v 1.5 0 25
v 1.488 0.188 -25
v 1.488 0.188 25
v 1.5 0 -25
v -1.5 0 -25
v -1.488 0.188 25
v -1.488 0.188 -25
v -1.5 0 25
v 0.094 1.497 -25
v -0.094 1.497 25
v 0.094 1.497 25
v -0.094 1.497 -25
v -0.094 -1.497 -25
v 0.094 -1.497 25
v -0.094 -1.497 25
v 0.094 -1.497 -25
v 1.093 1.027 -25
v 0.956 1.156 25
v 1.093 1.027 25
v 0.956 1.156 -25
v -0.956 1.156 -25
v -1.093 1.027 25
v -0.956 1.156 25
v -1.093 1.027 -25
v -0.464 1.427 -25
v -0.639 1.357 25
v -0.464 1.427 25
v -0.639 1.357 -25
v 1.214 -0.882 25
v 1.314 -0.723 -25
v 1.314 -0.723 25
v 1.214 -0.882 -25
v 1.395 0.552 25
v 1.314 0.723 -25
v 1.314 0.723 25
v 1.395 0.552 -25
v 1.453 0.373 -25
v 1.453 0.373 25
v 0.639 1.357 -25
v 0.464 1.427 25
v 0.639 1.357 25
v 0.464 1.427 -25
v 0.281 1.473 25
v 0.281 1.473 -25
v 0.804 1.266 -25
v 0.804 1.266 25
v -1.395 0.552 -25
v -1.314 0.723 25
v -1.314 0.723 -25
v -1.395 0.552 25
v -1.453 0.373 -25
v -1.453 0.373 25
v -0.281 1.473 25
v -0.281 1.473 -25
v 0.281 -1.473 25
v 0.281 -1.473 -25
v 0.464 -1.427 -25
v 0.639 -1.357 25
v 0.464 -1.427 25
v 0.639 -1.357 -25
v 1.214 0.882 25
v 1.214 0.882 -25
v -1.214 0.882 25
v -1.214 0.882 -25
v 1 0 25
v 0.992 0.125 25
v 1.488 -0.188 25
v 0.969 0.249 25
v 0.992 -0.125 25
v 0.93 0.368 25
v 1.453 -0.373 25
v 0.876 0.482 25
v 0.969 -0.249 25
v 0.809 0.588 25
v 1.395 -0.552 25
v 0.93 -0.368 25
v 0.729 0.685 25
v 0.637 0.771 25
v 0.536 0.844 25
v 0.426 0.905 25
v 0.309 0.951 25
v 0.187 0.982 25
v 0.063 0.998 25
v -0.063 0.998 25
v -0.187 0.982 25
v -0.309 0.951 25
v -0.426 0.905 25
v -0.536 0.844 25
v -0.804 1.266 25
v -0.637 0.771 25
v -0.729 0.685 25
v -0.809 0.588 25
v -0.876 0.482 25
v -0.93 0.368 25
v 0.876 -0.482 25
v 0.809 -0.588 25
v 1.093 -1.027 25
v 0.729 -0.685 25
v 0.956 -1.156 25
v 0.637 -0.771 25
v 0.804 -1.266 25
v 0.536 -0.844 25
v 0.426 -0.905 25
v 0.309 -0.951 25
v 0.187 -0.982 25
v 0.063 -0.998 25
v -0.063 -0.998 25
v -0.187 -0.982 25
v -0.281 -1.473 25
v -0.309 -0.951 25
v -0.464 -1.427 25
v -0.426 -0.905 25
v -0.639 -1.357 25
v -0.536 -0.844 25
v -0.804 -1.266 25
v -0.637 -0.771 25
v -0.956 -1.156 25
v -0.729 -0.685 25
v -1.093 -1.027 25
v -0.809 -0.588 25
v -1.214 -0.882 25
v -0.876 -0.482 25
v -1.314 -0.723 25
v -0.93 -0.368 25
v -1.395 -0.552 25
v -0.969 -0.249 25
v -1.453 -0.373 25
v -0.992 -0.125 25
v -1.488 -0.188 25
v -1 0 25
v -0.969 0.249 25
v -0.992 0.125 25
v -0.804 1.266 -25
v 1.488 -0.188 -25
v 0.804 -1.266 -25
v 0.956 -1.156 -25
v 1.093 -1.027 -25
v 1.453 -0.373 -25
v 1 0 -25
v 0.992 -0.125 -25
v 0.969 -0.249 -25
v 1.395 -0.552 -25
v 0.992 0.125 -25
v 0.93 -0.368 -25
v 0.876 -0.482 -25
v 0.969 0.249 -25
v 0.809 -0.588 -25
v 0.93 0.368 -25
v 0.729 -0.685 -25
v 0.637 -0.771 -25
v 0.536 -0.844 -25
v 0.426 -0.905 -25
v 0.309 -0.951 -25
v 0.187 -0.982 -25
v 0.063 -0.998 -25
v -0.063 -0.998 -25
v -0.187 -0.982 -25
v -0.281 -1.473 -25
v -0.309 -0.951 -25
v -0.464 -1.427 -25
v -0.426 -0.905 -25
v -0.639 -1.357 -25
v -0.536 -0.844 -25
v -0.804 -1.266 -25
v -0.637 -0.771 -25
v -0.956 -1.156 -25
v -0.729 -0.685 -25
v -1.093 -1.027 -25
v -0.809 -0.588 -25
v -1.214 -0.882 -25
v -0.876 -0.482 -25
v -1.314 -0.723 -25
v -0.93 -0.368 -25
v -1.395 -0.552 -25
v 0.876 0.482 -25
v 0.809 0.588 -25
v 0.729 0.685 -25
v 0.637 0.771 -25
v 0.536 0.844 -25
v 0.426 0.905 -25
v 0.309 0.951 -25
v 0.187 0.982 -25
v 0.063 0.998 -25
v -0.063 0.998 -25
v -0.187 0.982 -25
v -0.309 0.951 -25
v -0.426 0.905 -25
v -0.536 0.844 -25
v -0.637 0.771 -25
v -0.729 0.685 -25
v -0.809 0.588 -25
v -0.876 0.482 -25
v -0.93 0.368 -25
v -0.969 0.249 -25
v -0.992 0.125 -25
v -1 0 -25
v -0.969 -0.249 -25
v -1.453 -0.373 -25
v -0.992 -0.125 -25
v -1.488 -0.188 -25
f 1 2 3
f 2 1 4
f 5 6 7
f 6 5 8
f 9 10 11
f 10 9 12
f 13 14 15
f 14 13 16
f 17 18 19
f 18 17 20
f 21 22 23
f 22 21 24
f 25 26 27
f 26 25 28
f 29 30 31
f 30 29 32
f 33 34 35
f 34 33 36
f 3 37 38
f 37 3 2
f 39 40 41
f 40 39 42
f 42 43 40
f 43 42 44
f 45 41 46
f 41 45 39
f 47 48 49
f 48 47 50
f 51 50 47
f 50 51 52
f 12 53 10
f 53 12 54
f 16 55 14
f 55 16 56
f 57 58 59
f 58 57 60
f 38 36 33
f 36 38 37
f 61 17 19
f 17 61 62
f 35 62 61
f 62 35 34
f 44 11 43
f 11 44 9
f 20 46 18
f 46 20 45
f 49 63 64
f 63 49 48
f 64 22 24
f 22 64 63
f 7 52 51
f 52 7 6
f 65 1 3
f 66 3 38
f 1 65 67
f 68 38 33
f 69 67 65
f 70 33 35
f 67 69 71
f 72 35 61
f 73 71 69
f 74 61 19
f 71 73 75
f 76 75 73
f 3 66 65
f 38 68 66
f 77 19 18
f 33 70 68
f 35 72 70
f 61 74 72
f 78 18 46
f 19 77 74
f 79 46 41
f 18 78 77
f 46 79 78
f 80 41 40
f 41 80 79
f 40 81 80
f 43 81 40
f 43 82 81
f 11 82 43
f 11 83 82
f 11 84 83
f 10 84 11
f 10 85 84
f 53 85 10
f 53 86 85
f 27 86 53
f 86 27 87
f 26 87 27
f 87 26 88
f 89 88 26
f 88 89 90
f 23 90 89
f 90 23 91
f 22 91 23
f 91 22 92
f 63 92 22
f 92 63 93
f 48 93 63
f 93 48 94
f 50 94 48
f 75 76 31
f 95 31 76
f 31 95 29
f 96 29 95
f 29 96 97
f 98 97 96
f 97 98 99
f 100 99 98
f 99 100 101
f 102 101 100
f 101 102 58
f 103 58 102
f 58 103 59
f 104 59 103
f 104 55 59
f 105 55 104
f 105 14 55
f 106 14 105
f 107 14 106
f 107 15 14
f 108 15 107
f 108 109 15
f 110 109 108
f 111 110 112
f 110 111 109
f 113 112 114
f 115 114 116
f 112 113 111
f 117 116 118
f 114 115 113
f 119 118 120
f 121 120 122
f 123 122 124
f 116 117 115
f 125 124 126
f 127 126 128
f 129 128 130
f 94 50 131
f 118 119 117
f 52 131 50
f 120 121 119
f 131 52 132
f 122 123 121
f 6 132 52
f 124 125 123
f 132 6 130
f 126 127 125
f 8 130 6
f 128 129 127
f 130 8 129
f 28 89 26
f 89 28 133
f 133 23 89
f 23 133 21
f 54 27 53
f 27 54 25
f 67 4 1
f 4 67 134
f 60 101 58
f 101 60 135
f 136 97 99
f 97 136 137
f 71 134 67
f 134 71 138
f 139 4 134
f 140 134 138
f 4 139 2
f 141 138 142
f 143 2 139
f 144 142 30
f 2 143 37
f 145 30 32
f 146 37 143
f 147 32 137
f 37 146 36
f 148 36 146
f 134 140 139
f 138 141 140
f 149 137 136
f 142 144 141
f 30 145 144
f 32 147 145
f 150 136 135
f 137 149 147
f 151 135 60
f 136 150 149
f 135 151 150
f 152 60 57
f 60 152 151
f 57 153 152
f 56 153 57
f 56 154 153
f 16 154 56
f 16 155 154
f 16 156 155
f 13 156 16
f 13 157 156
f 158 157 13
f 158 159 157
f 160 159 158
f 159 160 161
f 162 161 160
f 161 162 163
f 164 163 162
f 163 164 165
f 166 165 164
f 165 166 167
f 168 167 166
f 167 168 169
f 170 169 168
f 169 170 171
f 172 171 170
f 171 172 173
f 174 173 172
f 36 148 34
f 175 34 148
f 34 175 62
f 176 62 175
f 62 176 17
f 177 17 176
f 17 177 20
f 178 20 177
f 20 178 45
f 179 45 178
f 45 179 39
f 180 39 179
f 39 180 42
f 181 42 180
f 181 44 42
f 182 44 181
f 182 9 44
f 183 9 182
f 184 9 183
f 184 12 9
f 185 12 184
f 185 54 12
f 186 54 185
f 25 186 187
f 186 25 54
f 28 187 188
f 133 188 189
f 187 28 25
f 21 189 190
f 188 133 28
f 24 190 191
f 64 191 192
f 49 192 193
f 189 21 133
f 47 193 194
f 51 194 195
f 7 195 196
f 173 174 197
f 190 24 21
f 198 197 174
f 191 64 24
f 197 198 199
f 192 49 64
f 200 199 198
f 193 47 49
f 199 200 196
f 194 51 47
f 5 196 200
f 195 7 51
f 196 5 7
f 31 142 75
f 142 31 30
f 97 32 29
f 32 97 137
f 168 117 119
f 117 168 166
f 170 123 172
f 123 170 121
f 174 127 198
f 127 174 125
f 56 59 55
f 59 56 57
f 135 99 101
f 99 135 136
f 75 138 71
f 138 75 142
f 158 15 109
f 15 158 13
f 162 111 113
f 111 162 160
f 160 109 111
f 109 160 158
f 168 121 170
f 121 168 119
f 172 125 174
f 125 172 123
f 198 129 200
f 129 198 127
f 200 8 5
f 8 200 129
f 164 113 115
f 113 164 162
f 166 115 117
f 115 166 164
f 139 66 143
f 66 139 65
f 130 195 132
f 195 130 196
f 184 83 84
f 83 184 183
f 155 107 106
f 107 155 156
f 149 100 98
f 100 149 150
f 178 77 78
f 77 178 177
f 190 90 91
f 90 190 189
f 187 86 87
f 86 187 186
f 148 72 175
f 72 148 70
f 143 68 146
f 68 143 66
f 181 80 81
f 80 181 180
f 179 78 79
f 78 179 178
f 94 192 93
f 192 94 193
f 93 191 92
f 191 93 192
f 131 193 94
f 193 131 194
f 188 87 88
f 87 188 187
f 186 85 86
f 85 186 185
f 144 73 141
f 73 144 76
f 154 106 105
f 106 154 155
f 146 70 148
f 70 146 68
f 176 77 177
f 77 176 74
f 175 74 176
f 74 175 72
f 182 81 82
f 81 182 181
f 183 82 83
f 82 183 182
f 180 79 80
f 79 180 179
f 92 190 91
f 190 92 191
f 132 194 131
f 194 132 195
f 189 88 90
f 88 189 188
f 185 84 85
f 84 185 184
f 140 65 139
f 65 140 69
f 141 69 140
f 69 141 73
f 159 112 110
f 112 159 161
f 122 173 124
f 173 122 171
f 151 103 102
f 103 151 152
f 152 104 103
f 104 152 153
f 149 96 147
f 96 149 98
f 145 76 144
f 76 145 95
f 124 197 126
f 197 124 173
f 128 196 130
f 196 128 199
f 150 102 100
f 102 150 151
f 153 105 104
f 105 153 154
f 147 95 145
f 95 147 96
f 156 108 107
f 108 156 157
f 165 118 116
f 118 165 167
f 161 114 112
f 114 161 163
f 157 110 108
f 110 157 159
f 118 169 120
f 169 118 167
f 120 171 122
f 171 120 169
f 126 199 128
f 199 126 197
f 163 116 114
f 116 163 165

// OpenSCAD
$fn = 50;


difference() {
	union() {
		translate(v = [0, 0, -25.0000000000]) {
			cylinder(h = 50, r = 1.5000000000);
		}
	}
	union() {
		translate(v = [0, 0, -100.0000000000]) {
			cylinder(h = 200, r = 1.0000000000);
		}
	}
}
